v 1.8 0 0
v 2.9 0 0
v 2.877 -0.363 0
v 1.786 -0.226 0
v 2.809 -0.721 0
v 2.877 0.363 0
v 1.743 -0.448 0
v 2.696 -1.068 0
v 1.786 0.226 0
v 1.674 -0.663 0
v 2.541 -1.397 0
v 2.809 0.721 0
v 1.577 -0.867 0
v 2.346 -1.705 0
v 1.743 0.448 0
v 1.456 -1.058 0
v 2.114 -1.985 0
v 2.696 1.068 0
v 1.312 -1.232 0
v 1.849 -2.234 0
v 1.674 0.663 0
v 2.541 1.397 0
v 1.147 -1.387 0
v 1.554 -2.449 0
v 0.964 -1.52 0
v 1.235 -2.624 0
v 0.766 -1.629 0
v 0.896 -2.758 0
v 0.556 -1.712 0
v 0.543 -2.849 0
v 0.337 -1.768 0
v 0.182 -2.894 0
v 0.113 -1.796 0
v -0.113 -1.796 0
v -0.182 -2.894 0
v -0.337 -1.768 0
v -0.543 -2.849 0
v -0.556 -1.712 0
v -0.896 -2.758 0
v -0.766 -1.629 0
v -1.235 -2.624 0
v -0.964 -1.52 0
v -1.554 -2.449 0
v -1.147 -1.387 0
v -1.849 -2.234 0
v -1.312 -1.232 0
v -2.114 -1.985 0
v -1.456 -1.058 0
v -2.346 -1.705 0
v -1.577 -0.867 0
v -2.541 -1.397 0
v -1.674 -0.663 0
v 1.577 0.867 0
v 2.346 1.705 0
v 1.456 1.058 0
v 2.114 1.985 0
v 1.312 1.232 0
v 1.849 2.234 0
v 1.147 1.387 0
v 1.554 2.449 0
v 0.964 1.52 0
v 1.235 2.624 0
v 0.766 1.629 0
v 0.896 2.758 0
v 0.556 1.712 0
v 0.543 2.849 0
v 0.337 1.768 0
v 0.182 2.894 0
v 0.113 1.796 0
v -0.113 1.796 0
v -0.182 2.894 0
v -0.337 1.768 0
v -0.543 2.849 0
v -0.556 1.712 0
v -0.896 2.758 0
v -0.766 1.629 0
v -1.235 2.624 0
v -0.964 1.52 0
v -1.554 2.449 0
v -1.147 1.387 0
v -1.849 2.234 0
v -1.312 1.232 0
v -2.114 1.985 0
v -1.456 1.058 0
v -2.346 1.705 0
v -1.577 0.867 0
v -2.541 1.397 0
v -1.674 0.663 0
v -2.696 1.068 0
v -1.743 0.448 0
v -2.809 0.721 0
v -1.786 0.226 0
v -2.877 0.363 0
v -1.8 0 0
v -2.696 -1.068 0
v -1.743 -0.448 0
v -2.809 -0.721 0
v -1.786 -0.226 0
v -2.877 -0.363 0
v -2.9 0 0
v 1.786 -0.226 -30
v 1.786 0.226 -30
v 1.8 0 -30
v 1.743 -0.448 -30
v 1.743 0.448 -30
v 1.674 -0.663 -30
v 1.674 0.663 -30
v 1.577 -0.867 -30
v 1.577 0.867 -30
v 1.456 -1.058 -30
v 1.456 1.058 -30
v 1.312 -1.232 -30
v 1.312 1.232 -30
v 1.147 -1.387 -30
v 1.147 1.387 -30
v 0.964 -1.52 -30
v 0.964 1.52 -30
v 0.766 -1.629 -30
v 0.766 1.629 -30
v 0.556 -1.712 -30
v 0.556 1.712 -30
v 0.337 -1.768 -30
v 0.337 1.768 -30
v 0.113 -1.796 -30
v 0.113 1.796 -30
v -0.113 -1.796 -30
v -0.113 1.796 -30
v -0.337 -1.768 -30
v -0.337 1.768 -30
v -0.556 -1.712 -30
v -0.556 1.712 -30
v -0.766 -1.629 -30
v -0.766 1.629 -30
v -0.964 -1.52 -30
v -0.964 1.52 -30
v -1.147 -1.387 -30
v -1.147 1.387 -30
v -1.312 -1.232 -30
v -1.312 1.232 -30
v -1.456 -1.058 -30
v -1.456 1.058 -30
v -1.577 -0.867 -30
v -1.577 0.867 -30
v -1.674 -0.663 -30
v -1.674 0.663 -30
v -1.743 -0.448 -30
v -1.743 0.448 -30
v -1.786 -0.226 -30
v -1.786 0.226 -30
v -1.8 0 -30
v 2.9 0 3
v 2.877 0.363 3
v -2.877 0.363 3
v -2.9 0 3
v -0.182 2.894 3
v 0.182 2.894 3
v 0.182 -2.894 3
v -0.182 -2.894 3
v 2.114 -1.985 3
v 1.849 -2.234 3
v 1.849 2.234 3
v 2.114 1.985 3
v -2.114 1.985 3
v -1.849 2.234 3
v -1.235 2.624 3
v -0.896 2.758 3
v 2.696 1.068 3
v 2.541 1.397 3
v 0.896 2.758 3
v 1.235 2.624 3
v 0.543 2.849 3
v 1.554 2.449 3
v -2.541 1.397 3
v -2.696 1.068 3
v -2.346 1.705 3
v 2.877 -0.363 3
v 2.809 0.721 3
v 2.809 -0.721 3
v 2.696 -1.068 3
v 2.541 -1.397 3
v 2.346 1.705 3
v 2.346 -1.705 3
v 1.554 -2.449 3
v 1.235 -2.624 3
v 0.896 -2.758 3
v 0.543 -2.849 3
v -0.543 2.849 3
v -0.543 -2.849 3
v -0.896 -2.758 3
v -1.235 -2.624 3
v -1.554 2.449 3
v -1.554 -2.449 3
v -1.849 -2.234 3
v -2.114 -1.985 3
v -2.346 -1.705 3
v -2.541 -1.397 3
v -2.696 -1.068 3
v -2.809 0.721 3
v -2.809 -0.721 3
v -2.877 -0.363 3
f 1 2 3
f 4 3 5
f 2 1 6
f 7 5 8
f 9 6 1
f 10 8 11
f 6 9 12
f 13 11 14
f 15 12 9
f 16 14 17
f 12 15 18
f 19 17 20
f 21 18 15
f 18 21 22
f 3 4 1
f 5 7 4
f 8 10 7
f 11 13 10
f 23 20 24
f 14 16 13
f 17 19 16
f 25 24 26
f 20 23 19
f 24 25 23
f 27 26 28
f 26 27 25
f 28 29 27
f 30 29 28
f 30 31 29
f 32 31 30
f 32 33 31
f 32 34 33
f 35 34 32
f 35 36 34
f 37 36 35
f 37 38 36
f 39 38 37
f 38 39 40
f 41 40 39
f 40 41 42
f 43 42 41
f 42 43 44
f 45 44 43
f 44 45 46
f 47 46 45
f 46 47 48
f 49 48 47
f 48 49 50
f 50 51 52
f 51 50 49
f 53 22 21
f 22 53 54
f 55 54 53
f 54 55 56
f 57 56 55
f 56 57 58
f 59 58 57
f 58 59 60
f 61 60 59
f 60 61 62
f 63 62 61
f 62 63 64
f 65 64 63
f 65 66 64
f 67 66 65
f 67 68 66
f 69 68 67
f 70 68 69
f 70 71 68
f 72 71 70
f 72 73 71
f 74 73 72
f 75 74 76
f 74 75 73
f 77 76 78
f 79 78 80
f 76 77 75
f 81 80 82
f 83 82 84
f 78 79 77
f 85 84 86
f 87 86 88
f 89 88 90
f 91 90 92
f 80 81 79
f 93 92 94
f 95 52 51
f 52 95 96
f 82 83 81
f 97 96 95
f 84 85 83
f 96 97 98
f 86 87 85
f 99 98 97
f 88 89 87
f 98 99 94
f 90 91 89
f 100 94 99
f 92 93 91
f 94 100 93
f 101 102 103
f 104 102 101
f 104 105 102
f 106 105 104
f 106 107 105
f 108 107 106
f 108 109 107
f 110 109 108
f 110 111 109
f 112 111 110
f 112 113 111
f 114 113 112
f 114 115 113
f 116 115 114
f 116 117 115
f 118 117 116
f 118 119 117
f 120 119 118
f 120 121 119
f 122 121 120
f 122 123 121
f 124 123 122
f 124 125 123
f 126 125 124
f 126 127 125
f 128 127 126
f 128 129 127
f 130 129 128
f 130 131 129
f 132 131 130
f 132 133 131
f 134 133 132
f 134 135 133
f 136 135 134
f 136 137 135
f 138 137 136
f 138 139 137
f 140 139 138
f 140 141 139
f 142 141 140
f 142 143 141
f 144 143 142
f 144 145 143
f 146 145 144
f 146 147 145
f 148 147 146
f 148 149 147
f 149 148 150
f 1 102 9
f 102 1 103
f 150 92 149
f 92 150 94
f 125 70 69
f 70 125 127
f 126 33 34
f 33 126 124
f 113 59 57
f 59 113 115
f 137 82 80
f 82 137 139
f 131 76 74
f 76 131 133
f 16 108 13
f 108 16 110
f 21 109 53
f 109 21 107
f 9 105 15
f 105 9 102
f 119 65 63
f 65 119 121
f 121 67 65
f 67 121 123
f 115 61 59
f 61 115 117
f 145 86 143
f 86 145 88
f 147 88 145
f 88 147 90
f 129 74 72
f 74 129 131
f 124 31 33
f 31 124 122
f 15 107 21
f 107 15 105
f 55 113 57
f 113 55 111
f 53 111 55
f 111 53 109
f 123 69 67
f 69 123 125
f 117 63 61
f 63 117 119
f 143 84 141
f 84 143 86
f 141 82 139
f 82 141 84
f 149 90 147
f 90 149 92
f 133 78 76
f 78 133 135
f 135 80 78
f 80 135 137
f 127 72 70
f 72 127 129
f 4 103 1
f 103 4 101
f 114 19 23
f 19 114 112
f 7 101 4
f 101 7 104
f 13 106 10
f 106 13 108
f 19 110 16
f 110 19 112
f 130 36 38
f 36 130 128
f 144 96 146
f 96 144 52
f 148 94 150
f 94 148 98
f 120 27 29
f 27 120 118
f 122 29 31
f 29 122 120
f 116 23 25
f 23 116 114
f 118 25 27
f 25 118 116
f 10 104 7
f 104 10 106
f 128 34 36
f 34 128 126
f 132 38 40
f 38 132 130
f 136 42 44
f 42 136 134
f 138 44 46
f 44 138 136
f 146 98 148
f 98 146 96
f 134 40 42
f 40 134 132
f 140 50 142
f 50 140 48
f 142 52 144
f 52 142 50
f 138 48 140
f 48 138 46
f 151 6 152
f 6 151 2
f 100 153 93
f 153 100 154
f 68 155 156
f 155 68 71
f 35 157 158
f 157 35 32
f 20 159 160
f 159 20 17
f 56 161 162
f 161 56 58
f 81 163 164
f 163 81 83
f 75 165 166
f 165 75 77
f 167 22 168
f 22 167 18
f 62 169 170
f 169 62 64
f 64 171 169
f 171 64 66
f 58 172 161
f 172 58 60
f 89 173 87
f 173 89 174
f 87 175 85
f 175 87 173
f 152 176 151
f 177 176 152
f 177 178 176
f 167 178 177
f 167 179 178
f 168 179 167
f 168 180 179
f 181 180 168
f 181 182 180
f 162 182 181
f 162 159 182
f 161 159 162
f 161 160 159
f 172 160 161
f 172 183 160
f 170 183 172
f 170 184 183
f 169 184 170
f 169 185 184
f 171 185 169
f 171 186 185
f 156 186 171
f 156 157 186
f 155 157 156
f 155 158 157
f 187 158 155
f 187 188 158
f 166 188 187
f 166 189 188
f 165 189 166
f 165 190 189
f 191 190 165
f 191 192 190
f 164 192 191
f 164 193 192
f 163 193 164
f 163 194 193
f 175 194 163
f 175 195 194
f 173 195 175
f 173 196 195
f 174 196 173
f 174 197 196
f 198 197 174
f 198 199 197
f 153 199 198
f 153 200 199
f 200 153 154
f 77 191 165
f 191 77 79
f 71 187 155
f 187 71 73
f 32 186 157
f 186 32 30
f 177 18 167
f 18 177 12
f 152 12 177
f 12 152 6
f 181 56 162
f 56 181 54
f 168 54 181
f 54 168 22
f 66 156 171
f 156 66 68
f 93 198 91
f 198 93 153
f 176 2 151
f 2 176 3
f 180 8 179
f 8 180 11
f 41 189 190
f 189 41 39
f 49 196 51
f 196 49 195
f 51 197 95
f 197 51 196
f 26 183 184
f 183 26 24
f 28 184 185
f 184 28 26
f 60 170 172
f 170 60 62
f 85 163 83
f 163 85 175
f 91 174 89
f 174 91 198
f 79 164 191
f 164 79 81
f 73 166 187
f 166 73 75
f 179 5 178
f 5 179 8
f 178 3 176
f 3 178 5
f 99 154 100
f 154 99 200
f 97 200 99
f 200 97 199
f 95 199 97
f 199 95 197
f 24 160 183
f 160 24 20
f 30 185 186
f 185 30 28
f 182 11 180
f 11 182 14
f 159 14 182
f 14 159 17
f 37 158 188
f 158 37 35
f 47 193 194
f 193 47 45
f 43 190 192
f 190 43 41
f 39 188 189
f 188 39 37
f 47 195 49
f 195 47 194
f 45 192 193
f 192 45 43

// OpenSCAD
$fn = 50;


difference() {
	union() {
		translate(v = [0, 0, 0]) {
			rotate(a = [0, 0, 0]) {
				difference() {
					union() {
						translate(v = [0, 0, -30.0000000000]) {
							cylinder(h = 30, r = 1.5000000000);
						}
						translate(v = [0, 0, -30.0000000000]) {
							cylinder(h = 30, r = 1.8000000000);
						}
						cylinder(h = 3, r = 2.9000000000);
						translate(v = [0, 0, -30.0000000000]) {
							cylinder(h = 30, r = 1.5000000000);
						}
					}
					union();
				}
			}
		}
	}
	union();
}
